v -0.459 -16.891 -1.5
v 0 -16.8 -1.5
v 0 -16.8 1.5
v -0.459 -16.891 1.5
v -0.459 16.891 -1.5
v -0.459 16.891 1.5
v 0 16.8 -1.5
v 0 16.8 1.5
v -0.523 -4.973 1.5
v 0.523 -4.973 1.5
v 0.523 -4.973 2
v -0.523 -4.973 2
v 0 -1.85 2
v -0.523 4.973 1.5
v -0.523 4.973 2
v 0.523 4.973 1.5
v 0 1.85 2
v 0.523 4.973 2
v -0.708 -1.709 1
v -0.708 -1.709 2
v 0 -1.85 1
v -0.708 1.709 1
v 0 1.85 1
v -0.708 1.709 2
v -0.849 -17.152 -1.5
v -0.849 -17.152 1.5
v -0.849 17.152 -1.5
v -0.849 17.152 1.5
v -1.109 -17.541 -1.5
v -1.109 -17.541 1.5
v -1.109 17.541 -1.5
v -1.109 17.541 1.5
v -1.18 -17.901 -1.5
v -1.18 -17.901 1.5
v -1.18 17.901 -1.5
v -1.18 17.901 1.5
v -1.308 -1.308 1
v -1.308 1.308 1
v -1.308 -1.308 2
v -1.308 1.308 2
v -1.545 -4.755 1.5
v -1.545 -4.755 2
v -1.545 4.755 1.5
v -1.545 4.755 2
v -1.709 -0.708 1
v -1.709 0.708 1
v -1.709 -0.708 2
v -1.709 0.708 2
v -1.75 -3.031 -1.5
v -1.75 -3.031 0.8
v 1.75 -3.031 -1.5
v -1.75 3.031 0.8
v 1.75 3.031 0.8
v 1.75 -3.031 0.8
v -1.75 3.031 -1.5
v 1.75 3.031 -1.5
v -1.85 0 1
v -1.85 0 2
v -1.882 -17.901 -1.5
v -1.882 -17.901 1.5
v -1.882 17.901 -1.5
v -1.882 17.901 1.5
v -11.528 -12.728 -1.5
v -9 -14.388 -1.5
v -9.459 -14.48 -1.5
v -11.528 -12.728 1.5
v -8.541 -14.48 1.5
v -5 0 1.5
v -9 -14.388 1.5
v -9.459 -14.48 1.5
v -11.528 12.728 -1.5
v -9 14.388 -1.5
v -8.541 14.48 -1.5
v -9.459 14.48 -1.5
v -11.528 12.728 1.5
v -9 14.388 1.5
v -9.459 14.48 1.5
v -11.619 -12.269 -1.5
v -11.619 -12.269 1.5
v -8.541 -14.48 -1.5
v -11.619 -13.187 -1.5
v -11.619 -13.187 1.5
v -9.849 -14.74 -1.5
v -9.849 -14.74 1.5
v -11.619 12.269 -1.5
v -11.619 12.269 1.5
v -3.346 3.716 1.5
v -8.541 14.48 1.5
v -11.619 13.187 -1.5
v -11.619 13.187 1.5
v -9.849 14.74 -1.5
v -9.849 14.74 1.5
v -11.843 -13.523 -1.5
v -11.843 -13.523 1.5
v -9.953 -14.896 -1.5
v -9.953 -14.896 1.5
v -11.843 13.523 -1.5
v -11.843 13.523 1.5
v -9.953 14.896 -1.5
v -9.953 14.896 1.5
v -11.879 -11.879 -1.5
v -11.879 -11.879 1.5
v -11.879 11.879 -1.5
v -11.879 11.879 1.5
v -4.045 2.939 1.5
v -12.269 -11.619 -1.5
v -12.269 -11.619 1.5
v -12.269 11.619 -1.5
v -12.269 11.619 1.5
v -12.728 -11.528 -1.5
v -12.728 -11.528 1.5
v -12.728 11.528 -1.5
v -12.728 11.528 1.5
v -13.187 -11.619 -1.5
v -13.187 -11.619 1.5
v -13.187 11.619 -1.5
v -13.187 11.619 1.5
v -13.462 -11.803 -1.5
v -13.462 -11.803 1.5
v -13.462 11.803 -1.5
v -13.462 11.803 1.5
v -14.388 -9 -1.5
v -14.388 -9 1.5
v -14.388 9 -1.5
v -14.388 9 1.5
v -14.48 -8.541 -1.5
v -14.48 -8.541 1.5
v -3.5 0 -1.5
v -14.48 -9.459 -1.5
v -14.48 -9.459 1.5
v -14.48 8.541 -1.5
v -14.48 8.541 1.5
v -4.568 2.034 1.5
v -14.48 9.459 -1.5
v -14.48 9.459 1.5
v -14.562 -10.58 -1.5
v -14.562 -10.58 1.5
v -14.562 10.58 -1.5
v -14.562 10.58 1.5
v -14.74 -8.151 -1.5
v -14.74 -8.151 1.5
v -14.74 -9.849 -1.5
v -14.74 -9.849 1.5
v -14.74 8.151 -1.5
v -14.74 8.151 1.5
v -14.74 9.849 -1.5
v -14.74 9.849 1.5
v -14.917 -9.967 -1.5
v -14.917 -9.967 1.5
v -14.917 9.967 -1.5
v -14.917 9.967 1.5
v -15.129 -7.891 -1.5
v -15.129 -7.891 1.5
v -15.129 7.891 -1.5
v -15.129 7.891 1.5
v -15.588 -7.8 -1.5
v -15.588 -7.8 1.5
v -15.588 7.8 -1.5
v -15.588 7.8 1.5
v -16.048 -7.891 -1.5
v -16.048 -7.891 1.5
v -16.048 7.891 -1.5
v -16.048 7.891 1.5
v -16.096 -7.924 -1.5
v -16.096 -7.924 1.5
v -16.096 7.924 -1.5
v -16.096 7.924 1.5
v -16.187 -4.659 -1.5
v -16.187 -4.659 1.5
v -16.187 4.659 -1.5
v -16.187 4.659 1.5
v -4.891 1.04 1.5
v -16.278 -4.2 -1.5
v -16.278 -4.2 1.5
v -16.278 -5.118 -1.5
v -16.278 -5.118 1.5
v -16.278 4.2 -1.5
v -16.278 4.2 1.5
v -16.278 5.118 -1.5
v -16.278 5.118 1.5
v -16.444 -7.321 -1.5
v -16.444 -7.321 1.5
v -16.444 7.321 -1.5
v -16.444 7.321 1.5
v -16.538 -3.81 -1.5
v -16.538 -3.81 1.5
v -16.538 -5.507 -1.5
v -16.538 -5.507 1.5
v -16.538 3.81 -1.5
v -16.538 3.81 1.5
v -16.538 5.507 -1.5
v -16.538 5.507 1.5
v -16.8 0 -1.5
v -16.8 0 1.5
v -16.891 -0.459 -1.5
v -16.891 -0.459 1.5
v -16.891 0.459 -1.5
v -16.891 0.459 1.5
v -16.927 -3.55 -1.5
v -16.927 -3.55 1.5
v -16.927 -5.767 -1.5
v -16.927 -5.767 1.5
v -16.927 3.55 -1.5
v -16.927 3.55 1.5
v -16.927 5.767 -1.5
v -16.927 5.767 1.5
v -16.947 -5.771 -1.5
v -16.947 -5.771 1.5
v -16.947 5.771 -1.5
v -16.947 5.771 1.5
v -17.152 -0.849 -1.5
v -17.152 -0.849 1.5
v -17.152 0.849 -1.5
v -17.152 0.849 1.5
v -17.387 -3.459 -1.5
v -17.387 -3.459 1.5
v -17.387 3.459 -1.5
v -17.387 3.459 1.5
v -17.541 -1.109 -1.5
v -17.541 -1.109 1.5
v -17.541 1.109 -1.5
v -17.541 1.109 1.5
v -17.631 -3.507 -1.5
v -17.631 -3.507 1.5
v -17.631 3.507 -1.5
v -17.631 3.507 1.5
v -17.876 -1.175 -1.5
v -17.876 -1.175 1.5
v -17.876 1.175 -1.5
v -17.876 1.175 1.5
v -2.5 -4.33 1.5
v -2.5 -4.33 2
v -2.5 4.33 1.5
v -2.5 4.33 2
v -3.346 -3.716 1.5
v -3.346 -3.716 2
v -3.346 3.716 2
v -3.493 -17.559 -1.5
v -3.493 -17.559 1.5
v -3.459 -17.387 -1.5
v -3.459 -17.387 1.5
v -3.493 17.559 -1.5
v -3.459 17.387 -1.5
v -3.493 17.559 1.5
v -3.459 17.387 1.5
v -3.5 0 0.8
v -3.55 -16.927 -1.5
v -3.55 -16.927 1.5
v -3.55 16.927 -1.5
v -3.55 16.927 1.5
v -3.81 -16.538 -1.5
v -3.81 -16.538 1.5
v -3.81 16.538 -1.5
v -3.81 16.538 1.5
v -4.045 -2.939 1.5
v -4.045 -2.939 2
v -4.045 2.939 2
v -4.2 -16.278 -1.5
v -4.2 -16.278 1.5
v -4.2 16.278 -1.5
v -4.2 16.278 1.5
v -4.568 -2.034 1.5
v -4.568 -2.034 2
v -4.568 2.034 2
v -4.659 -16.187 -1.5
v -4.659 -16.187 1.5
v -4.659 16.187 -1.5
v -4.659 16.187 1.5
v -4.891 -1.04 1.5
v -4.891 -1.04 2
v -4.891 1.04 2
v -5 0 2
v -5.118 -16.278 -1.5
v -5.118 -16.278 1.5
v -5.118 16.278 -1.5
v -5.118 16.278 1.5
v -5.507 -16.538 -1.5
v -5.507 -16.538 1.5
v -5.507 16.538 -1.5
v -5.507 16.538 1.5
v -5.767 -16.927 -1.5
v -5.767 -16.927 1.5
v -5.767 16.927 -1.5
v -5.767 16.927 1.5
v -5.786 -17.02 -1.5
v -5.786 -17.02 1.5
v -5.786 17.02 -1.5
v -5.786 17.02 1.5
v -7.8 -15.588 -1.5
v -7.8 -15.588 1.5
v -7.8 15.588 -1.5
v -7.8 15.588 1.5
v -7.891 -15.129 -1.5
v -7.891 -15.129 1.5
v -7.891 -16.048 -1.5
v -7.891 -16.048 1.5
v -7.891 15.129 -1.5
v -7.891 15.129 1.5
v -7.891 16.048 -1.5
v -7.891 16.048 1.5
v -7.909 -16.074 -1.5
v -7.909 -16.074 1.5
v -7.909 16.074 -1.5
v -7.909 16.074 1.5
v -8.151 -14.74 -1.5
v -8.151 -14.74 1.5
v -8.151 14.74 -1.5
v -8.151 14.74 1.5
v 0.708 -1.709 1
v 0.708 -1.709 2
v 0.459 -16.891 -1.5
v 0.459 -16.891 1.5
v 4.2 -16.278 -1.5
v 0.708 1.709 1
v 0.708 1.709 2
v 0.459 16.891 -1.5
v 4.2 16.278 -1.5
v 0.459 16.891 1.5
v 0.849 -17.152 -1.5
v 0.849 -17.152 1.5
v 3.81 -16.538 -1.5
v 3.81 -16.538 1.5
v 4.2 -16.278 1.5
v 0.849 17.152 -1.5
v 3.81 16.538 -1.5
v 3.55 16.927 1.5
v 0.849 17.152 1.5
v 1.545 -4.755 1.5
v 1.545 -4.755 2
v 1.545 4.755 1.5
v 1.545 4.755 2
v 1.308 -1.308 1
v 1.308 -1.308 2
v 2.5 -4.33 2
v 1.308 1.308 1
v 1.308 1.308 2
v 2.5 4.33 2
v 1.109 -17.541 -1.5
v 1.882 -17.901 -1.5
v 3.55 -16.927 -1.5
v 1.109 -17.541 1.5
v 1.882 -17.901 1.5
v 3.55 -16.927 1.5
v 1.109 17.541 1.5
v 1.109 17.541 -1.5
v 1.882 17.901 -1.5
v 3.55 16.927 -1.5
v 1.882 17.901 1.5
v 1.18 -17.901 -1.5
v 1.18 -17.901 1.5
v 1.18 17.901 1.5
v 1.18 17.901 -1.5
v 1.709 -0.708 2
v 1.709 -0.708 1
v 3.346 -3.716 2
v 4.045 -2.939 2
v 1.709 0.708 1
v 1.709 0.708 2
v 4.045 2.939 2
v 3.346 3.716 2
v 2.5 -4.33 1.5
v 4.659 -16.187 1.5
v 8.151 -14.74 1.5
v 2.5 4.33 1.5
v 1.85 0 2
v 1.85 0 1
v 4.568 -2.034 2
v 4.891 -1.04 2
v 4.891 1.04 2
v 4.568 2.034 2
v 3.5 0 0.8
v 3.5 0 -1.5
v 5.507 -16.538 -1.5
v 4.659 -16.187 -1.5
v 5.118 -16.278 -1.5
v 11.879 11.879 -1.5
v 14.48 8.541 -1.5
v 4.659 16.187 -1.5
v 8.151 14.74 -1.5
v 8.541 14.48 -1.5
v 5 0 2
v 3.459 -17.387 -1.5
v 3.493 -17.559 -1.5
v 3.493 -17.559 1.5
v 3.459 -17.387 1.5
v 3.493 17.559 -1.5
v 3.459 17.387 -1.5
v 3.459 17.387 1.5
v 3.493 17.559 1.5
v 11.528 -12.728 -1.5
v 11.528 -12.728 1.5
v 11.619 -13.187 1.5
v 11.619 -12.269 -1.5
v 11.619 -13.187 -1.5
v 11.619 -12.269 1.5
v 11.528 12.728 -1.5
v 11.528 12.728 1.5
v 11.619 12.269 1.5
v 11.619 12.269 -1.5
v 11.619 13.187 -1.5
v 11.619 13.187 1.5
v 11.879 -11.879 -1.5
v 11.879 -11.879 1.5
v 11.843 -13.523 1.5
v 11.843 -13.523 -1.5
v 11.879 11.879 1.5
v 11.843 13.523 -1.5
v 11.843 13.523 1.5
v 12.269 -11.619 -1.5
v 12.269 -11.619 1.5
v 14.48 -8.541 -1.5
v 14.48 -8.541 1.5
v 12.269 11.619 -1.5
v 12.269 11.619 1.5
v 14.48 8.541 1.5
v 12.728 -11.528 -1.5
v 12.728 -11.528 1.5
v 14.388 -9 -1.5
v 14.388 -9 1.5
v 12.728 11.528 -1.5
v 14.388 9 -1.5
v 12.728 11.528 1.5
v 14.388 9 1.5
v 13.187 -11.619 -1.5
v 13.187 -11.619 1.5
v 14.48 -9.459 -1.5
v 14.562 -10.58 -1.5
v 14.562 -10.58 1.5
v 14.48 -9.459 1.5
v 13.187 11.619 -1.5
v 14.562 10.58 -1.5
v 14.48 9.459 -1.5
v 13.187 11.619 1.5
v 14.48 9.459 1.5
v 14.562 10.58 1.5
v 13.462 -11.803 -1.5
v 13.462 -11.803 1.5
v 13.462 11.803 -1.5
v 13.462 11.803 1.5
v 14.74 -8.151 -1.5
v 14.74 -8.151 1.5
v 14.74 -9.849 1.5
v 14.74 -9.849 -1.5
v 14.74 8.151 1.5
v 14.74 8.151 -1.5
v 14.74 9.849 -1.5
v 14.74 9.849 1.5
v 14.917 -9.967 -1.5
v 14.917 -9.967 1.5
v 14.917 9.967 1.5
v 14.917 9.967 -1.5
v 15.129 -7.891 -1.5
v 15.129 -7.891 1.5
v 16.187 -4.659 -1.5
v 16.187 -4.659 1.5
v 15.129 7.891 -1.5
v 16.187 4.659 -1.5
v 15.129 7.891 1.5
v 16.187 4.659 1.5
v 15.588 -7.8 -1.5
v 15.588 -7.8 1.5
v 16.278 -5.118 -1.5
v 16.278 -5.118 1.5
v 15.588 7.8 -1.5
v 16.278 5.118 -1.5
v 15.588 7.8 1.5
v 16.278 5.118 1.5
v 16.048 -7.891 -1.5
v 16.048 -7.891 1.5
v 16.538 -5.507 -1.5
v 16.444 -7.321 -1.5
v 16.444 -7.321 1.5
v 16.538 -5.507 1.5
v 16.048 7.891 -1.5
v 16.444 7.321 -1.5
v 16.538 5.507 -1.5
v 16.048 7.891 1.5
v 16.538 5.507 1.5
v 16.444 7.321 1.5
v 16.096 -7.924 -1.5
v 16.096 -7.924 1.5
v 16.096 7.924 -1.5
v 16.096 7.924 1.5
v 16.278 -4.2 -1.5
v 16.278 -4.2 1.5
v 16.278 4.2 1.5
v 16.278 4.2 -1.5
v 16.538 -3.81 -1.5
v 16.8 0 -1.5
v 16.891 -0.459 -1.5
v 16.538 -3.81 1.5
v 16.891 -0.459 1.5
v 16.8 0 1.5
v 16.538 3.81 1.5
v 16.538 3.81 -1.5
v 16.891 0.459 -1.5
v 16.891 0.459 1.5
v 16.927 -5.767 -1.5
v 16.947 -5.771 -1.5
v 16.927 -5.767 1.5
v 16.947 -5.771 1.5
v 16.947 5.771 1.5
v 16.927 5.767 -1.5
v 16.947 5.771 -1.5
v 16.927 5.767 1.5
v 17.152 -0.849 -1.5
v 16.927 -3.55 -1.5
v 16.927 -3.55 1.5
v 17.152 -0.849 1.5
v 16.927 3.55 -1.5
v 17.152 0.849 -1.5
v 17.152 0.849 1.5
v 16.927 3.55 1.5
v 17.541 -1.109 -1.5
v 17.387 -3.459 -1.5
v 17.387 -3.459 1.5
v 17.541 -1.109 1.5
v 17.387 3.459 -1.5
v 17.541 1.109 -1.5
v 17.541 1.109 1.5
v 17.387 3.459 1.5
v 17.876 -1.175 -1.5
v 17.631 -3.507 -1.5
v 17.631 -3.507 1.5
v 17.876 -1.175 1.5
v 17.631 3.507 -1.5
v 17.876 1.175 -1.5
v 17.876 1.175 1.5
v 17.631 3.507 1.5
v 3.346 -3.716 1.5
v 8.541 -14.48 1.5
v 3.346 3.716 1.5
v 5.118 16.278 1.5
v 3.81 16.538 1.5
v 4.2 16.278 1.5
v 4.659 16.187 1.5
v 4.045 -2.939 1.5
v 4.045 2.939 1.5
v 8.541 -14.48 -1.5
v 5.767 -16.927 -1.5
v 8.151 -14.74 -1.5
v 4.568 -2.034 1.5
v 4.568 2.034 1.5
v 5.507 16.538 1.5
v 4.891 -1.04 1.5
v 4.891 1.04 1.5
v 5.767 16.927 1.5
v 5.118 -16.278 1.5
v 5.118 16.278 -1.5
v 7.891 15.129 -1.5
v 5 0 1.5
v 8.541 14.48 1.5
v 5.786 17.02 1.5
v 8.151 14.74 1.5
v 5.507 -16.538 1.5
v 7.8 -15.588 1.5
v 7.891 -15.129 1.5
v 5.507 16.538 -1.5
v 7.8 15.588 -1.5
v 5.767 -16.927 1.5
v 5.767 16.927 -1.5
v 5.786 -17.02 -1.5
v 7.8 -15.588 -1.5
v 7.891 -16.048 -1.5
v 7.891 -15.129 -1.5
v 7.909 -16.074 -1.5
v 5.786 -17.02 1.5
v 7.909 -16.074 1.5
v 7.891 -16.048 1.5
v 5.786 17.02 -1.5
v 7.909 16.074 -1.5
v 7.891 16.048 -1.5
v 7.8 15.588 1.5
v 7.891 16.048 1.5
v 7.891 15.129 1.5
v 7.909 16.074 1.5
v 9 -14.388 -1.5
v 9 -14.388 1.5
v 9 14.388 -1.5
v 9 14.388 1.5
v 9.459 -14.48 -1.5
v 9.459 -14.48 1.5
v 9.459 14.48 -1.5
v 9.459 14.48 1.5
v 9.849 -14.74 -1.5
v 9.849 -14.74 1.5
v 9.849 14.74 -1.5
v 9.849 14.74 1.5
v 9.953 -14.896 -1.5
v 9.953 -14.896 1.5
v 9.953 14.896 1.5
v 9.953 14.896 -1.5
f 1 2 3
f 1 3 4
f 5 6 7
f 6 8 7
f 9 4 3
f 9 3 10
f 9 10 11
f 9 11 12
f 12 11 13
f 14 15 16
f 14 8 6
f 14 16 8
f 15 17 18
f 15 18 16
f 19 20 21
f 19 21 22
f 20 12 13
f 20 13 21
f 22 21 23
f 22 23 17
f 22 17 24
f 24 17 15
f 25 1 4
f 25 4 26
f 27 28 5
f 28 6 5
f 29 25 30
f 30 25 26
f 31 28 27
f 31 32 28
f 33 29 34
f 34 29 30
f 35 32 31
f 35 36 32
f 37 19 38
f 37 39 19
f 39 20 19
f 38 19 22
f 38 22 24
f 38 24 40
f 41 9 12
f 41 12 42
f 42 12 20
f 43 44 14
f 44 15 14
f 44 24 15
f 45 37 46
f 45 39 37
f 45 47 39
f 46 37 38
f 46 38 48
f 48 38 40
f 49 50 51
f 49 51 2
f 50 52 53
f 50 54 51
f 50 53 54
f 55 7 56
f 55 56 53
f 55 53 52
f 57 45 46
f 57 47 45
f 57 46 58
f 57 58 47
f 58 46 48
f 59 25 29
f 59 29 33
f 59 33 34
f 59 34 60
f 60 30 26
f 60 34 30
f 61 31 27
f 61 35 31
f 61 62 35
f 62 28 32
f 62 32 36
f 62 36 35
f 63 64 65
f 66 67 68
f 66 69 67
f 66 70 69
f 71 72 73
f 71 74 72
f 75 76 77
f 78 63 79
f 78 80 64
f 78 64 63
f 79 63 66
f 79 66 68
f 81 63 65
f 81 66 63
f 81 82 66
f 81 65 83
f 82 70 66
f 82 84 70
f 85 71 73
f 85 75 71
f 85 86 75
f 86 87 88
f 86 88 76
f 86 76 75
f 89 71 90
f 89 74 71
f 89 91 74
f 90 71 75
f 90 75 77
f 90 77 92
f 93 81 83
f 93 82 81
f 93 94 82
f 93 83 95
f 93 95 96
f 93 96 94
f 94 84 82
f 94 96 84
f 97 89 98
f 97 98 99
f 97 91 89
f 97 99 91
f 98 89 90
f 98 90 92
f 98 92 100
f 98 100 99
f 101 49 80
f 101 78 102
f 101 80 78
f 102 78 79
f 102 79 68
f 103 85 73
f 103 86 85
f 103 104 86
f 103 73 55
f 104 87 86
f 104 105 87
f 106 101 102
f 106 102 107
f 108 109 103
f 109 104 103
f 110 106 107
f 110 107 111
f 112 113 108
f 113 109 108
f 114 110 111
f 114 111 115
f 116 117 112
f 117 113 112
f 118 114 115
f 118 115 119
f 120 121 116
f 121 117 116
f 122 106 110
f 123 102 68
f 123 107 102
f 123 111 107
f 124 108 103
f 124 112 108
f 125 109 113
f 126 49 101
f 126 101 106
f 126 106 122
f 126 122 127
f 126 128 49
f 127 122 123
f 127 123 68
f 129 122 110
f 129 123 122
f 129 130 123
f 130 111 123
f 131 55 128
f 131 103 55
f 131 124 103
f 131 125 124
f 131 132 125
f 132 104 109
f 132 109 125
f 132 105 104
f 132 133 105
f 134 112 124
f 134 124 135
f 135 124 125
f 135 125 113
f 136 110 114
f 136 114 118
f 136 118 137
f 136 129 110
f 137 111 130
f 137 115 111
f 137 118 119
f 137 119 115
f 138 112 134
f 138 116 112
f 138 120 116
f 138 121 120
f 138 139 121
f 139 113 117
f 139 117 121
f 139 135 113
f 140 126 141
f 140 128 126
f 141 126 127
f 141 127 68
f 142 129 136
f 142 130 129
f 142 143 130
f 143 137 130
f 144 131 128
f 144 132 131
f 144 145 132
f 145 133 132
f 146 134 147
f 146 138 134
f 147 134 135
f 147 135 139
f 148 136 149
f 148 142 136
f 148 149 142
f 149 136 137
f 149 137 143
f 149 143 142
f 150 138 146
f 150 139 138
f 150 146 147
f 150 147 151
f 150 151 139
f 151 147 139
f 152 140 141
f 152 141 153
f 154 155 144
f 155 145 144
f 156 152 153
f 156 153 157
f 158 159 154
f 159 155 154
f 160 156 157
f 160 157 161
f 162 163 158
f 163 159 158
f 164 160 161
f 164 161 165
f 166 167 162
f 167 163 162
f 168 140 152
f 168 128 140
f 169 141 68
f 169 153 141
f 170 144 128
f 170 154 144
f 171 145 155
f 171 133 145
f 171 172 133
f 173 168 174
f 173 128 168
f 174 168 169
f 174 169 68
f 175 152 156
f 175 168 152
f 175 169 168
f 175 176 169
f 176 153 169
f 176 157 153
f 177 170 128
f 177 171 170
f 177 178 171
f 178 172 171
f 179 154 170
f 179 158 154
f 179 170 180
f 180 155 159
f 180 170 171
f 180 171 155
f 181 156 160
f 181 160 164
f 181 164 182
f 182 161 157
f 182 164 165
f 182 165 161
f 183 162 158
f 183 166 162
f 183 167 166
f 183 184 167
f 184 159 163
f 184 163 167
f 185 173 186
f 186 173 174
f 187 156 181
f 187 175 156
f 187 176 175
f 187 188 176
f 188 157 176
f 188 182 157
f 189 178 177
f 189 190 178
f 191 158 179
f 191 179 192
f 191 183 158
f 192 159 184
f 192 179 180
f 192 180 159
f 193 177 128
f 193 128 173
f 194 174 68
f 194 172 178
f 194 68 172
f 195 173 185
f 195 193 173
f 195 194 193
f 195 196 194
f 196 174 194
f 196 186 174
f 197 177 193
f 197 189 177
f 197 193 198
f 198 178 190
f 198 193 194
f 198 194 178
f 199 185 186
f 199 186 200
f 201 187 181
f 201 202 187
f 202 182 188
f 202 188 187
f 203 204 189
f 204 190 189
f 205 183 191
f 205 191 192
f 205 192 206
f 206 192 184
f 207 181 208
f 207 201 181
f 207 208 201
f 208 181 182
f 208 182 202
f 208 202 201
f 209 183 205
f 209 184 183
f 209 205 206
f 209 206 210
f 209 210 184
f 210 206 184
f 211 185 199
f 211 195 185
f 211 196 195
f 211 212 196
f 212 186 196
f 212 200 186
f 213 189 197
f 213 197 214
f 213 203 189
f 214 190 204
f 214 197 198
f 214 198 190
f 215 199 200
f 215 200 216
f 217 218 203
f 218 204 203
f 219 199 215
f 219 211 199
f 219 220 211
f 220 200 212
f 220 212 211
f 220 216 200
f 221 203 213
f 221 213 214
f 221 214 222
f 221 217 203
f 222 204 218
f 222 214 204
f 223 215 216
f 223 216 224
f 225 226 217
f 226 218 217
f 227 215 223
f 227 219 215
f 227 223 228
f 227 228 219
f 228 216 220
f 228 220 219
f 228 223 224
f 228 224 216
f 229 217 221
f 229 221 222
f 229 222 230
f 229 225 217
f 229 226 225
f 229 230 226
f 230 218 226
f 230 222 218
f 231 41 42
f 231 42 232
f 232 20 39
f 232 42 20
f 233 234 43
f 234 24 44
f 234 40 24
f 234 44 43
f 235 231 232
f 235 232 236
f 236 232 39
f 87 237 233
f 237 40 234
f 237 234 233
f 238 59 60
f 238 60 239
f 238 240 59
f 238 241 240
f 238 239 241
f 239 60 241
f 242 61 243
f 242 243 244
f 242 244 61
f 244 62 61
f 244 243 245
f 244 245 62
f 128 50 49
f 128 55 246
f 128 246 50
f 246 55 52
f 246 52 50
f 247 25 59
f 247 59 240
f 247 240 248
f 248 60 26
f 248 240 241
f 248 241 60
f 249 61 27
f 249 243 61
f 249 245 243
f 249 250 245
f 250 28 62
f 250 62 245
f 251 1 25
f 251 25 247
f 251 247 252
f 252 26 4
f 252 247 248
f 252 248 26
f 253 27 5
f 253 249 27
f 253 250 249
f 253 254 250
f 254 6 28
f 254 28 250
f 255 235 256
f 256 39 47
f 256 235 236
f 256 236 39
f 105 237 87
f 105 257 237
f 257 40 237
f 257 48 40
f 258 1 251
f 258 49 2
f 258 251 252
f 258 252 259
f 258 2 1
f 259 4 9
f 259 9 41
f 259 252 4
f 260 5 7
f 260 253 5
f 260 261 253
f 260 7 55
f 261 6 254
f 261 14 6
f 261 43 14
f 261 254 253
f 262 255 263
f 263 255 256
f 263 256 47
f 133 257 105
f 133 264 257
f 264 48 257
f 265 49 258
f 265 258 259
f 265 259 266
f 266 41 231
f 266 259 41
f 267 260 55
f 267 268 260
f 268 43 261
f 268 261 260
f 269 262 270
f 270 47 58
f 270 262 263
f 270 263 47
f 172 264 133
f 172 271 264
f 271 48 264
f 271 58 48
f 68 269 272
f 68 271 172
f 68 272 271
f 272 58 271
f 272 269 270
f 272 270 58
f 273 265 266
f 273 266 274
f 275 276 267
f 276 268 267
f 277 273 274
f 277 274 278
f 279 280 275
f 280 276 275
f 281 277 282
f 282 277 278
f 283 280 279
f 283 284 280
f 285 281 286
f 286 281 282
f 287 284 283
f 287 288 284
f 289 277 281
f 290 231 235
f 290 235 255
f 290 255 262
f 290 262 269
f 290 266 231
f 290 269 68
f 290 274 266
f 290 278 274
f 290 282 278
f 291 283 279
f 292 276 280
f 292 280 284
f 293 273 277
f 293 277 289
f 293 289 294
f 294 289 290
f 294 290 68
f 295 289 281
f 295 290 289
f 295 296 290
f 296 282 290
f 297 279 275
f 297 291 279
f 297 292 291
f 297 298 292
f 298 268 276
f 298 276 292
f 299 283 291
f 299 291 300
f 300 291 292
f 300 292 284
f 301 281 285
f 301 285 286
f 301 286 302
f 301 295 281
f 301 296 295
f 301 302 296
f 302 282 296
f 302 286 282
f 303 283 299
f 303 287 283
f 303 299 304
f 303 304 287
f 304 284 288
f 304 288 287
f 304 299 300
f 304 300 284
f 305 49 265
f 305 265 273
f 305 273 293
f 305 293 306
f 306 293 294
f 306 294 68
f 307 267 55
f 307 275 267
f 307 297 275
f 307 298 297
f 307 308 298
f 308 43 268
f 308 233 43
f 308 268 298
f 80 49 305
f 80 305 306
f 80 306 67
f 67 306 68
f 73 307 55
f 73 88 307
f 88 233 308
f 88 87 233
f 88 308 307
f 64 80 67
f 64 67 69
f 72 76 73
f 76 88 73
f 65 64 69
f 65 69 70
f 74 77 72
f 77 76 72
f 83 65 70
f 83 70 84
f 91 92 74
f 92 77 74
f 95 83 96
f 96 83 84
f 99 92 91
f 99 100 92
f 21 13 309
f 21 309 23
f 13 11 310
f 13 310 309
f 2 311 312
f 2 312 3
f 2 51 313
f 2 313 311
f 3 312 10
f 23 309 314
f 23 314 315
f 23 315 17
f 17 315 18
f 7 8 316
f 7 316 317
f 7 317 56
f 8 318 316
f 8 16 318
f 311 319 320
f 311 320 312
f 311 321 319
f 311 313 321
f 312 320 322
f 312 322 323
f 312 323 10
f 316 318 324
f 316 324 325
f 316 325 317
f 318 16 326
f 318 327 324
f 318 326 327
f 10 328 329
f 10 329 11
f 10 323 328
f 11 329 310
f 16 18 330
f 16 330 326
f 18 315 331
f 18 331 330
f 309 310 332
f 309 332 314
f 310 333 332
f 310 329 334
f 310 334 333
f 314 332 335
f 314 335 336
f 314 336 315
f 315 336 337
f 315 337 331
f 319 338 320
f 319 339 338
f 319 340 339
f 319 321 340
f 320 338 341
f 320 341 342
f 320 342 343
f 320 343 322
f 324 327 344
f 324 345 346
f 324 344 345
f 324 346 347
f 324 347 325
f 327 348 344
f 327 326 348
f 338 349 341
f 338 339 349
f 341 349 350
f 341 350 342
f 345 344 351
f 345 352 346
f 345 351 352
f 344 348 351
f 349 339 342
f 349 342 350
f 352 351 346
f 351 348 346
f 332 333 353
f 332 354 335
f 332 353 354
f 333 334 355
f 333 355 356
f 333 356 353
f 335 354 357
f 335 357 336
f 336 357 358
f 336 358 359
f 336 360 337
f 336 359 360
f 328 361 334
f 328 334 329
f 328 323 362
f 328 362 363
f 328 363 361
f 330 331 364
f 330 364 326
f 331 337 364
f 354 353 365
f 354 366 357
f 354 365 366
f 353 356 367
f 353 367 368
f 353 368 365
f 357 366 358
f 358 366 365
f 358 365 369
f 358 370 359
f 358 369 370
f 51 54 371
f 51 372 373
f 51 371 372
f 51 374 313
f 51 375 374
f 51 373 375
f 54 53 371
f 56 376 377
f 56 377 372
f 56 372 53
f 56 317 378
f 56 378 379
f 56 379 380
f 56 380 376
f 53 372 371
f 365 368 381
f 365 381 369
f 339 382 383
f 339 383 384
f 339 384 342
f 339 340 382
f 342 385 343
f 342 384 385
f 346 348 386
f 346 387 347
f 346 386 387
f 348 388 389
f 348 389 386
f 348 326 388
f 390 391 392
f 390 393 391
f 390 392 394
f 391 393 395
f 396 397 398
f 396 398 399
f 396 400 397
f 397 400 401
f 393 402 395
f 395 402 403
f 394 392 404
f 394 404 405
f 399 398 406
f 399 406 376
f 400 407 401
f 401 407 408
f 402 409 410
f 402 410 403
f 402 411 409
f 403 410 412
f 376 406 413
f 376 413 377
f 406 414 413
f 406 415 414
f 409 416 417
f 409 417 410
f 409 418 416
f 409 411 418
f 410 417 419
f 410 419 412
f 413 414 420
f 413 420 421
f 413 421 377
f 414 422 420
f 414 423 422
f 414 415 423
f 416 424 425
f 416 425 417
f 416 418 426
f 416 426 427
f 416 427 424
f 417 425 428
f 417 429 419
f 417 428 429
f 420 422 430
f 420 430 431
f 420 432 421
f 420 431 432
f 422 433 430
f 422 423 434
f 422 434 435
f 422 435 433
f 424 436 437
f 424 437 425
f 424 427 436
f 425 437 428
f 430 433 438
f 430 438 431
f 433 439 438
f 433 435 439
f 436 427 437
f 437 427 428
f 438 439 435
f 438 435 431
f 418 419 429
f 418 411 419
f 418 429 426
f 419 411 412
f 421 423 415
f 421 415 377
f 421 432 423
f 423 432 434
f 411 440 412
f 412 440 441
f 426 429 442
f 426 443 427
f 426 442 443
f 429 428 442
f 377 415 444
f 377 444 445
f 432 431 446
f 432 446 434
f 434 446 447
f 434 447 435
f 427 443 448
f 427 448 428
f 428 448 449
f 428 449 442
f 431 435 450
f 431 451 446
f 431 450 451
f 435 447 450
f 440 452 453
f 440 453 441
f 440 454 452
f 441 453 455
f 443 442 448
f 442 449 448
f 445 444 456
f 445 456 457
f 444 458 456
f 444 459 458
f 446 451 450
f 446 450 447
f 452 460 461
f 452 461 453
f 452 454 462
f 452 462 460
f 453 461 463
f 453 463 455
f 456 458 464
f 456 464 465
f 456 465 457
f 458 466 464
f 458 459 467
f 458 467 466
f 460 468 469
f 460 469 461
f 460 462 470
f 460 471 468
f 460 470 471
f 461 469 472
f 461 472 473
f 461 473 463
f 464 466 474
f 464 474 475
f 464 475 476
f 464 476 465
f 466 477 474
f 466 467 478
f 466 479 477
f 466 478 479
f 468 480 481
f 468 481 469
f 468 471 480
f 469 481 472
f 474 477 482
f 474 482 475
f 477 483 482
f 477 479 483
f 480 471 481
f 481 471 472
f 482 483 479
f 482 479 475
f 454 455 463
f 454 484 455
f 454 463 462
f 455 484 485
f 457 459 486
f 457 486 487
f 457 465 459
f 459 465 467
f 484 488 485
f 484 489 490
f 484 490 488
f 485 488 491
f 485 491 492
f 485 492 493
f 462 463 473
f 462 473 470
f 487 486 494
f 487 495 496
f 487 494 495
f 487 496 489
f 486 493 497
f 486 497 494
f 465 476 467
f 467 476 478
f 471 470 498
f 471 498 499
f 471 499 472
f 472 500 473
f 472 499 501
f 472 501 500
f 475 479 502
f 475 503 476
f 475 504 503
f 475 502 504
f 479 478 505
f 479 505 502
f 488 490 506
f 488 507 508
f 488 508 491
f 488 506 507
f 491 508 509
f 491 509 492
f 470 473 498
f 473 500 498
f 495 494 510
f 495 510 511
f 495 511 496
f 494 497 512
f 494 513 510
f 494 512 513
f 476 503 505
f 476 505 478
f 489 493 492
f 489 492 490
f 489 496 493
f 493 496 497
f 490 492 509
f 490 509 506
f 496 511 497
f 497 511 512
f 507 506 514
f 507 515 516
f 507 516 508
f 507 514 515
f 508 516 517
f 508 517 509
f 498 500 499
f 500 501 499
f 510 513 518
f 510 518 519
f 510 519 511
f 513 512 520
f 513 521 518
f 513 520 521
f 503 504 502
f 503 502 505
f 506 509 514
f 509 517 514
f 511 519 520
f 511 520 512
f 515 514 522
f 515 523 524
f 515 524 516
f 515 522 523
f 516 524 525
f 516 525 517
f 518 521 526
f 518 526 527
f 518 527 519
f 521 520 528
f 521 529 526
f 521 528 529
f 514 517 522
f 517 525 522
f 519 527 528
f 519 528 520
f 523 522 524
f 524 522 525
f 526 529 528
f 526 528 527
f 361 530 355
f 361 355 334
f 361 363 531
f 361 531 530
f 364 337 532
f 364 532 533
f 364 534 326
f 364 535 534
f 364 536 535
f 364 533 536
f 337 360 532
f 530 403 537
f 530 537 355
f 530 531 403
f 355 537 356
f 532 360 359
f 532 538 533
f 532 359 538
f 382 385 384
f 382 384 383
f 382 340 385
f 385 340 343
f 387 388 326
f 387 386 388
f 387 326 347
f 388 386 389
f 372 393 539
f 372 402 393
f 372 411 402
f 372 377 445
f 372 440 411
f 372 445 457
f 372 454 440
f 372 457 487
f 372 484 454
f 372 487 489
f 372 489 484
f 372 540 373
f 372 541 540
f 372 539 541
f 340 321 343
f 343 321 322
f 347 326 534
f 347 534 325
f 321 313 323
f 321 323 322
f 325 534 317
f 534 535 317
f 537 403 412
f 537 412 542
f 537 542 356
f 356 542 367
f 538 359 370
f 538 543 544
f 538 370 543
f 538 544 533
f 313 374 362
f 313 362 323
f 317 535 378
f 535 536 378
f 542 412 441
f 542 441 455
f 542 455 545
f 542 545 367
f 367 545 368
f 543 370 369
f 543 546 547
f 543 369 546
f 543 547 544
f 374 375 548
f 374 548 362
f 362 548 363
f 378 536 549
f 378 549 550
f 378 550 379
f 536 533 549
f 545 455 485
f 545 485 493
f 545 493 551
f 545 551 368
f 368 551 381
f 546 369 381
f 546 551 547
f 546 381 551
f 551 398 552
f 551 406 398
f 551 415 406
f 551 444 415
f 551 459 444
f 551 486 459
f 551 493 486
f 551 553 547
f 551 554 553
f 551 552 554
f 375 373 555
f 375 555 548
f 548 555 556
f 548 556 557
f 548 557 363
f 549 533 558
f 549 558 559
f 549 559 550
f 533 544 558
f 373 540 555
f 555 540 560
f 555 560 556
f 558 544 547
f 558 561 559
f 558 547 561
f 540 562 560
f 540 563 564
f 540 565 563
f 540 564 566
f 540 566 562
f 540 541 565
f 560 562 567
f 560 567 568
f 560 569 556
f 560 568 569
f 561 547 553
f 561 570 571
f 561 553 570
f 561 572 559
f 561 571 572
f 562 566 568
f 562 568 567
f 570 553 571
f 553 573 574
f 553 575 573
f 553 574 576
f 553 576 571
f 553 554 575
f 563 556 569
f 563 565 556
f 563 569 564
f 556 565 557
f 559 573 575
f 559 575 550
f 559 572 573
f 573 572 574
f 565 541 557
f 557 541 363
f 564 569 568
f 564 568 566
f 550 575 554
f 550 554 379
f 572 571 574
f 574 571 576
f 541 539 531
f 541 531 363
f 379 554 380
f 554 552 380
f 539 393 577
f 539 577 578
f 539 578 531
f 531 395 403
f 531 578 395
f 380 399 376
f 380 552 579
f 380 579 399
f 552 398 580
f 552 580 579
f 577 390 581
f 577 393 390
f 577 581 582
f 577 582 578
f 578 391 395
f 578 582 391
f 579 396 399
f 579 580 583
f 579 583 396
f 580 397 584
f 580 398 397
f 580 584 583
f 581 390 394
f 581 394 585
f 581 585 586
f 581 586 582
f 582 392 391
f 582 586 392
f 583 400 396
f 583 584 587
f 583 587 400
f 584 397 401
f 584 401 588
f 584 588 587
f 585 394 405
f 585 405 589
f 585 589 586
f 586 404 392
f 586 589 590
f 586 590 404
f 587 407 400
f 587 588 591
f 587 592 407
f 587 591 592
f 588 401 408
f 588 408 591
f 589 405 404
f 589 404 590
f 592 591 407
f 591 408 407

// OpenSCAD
// file: ../configuration.scad
// Layer high for the printing [mm]
layer_height = 0.20; //Slic3r->Print Settings->Layers and perimeters->Layer height

// Spare for the screws heads [mm]
spare = 0.75;
// M6 screw diameter [mm]
M6_head_diameter = 13.6+spare;
//M6_head_diameter = 10.6+spare;
//M6_head_diameter = 12+spare;

// M6 head high (for hiding it) [mm]
//M6_head_height = 4;
M6_head_height = 3.6;
//M6_head_height = 4.5;

// Screws and rods diameters
M8_smooth_rod_diameter = 8.3;
M8_smooth_rod_diameter_catch = 8.4;
// Prumer 8mm tyce
rod_8mm_d = 8.2; //pro dil z-top
M6_diameter = 6.6;
M6_dia=M6_diameter; //pro dil z-top
M6_diamater_horizontal = 6.5;
M3_diameter = 3.7;
M3_diameter_horizontal = 3.5;

//matice trapézové tyče
TRAP_diameter_externa=22; //průmer vnější 


// Nuts diameters
M3_nut_diameter = 7.0;
M3_nut_diameter_horizontal = 6.7;

// ALU profile parameters
ALU_cut_width = 7.9;
ALU_cut_width_horizontal = 7.7;

// Sirka matky do profilu (pokud neni pouzita, tak 0)
//profile_nut_width = 9.5;
profile_nut_width = 0; //pro z-top

// Motors length/depth (for axes Z and Y)
//SX17-1003LQFE (recommended for the Z axis)
motor_length = 29.5;
//SX17-1003 (recommended for the Z axis)
//motor_length = 34;
//SX17-1005
//motor_length = 40;
//SX17-0905 - this motor is too high - the Z end stop holder has to be adjusted
//motor_length = 48;

// Extrusion width [mm]
extrusion_width = 0.66; //Slic3r->Print Settings->Advanced->Default extrusion width

/// Belt type ******************************************************

// GT2 
/*belt_tooth_distance = 2;
belt_tooth_ratio = 0.5;
belt_tooth_height = 1.4;
belt_thickness = 2.3;
*/

// T2.5
belt_tooth_distance = 2.5;
belt_tooth_ratio = 0.5;


// Tloustka rohovych spojek
// 5 mm => sroub M6x14 s podlozkou
// 3 mm => sroub M6x12 s podlozkou
coupler_thickness = 3;
// main file
// RebeliX
//
// heatbed nut
// GNU GPL v3
// Martin Neruda <neruda@reprap4u.cz>
// http://www.reprap4u.cz

include <../configuration.scad>

// Diameter of the whole holder
diameter = 36;
// Tooth diameter
tooth_diameter = 2.4;

difference(){
	union(){
		cylinder(r=diameter/2,h=3, center=true);
		cylinder(r=5, h=2, $fn = 30);
	}
	for ( i = [0 : 15 : 360] ){
		translate([sin(i)*diameter/2,cos(i)*diameter/2,-3]) cylinder(r=tooth_diameter/2,h=6, $fn=16);
	}
	translate([0,0,-1.6]) cylinder(r=M3_nut_diameter/2,h=2.4,$fn=6);
	translate([0,0,0.8+layer_height]) cylinder(r=M3_diameter/2,h=5,$fn=16);
}	
